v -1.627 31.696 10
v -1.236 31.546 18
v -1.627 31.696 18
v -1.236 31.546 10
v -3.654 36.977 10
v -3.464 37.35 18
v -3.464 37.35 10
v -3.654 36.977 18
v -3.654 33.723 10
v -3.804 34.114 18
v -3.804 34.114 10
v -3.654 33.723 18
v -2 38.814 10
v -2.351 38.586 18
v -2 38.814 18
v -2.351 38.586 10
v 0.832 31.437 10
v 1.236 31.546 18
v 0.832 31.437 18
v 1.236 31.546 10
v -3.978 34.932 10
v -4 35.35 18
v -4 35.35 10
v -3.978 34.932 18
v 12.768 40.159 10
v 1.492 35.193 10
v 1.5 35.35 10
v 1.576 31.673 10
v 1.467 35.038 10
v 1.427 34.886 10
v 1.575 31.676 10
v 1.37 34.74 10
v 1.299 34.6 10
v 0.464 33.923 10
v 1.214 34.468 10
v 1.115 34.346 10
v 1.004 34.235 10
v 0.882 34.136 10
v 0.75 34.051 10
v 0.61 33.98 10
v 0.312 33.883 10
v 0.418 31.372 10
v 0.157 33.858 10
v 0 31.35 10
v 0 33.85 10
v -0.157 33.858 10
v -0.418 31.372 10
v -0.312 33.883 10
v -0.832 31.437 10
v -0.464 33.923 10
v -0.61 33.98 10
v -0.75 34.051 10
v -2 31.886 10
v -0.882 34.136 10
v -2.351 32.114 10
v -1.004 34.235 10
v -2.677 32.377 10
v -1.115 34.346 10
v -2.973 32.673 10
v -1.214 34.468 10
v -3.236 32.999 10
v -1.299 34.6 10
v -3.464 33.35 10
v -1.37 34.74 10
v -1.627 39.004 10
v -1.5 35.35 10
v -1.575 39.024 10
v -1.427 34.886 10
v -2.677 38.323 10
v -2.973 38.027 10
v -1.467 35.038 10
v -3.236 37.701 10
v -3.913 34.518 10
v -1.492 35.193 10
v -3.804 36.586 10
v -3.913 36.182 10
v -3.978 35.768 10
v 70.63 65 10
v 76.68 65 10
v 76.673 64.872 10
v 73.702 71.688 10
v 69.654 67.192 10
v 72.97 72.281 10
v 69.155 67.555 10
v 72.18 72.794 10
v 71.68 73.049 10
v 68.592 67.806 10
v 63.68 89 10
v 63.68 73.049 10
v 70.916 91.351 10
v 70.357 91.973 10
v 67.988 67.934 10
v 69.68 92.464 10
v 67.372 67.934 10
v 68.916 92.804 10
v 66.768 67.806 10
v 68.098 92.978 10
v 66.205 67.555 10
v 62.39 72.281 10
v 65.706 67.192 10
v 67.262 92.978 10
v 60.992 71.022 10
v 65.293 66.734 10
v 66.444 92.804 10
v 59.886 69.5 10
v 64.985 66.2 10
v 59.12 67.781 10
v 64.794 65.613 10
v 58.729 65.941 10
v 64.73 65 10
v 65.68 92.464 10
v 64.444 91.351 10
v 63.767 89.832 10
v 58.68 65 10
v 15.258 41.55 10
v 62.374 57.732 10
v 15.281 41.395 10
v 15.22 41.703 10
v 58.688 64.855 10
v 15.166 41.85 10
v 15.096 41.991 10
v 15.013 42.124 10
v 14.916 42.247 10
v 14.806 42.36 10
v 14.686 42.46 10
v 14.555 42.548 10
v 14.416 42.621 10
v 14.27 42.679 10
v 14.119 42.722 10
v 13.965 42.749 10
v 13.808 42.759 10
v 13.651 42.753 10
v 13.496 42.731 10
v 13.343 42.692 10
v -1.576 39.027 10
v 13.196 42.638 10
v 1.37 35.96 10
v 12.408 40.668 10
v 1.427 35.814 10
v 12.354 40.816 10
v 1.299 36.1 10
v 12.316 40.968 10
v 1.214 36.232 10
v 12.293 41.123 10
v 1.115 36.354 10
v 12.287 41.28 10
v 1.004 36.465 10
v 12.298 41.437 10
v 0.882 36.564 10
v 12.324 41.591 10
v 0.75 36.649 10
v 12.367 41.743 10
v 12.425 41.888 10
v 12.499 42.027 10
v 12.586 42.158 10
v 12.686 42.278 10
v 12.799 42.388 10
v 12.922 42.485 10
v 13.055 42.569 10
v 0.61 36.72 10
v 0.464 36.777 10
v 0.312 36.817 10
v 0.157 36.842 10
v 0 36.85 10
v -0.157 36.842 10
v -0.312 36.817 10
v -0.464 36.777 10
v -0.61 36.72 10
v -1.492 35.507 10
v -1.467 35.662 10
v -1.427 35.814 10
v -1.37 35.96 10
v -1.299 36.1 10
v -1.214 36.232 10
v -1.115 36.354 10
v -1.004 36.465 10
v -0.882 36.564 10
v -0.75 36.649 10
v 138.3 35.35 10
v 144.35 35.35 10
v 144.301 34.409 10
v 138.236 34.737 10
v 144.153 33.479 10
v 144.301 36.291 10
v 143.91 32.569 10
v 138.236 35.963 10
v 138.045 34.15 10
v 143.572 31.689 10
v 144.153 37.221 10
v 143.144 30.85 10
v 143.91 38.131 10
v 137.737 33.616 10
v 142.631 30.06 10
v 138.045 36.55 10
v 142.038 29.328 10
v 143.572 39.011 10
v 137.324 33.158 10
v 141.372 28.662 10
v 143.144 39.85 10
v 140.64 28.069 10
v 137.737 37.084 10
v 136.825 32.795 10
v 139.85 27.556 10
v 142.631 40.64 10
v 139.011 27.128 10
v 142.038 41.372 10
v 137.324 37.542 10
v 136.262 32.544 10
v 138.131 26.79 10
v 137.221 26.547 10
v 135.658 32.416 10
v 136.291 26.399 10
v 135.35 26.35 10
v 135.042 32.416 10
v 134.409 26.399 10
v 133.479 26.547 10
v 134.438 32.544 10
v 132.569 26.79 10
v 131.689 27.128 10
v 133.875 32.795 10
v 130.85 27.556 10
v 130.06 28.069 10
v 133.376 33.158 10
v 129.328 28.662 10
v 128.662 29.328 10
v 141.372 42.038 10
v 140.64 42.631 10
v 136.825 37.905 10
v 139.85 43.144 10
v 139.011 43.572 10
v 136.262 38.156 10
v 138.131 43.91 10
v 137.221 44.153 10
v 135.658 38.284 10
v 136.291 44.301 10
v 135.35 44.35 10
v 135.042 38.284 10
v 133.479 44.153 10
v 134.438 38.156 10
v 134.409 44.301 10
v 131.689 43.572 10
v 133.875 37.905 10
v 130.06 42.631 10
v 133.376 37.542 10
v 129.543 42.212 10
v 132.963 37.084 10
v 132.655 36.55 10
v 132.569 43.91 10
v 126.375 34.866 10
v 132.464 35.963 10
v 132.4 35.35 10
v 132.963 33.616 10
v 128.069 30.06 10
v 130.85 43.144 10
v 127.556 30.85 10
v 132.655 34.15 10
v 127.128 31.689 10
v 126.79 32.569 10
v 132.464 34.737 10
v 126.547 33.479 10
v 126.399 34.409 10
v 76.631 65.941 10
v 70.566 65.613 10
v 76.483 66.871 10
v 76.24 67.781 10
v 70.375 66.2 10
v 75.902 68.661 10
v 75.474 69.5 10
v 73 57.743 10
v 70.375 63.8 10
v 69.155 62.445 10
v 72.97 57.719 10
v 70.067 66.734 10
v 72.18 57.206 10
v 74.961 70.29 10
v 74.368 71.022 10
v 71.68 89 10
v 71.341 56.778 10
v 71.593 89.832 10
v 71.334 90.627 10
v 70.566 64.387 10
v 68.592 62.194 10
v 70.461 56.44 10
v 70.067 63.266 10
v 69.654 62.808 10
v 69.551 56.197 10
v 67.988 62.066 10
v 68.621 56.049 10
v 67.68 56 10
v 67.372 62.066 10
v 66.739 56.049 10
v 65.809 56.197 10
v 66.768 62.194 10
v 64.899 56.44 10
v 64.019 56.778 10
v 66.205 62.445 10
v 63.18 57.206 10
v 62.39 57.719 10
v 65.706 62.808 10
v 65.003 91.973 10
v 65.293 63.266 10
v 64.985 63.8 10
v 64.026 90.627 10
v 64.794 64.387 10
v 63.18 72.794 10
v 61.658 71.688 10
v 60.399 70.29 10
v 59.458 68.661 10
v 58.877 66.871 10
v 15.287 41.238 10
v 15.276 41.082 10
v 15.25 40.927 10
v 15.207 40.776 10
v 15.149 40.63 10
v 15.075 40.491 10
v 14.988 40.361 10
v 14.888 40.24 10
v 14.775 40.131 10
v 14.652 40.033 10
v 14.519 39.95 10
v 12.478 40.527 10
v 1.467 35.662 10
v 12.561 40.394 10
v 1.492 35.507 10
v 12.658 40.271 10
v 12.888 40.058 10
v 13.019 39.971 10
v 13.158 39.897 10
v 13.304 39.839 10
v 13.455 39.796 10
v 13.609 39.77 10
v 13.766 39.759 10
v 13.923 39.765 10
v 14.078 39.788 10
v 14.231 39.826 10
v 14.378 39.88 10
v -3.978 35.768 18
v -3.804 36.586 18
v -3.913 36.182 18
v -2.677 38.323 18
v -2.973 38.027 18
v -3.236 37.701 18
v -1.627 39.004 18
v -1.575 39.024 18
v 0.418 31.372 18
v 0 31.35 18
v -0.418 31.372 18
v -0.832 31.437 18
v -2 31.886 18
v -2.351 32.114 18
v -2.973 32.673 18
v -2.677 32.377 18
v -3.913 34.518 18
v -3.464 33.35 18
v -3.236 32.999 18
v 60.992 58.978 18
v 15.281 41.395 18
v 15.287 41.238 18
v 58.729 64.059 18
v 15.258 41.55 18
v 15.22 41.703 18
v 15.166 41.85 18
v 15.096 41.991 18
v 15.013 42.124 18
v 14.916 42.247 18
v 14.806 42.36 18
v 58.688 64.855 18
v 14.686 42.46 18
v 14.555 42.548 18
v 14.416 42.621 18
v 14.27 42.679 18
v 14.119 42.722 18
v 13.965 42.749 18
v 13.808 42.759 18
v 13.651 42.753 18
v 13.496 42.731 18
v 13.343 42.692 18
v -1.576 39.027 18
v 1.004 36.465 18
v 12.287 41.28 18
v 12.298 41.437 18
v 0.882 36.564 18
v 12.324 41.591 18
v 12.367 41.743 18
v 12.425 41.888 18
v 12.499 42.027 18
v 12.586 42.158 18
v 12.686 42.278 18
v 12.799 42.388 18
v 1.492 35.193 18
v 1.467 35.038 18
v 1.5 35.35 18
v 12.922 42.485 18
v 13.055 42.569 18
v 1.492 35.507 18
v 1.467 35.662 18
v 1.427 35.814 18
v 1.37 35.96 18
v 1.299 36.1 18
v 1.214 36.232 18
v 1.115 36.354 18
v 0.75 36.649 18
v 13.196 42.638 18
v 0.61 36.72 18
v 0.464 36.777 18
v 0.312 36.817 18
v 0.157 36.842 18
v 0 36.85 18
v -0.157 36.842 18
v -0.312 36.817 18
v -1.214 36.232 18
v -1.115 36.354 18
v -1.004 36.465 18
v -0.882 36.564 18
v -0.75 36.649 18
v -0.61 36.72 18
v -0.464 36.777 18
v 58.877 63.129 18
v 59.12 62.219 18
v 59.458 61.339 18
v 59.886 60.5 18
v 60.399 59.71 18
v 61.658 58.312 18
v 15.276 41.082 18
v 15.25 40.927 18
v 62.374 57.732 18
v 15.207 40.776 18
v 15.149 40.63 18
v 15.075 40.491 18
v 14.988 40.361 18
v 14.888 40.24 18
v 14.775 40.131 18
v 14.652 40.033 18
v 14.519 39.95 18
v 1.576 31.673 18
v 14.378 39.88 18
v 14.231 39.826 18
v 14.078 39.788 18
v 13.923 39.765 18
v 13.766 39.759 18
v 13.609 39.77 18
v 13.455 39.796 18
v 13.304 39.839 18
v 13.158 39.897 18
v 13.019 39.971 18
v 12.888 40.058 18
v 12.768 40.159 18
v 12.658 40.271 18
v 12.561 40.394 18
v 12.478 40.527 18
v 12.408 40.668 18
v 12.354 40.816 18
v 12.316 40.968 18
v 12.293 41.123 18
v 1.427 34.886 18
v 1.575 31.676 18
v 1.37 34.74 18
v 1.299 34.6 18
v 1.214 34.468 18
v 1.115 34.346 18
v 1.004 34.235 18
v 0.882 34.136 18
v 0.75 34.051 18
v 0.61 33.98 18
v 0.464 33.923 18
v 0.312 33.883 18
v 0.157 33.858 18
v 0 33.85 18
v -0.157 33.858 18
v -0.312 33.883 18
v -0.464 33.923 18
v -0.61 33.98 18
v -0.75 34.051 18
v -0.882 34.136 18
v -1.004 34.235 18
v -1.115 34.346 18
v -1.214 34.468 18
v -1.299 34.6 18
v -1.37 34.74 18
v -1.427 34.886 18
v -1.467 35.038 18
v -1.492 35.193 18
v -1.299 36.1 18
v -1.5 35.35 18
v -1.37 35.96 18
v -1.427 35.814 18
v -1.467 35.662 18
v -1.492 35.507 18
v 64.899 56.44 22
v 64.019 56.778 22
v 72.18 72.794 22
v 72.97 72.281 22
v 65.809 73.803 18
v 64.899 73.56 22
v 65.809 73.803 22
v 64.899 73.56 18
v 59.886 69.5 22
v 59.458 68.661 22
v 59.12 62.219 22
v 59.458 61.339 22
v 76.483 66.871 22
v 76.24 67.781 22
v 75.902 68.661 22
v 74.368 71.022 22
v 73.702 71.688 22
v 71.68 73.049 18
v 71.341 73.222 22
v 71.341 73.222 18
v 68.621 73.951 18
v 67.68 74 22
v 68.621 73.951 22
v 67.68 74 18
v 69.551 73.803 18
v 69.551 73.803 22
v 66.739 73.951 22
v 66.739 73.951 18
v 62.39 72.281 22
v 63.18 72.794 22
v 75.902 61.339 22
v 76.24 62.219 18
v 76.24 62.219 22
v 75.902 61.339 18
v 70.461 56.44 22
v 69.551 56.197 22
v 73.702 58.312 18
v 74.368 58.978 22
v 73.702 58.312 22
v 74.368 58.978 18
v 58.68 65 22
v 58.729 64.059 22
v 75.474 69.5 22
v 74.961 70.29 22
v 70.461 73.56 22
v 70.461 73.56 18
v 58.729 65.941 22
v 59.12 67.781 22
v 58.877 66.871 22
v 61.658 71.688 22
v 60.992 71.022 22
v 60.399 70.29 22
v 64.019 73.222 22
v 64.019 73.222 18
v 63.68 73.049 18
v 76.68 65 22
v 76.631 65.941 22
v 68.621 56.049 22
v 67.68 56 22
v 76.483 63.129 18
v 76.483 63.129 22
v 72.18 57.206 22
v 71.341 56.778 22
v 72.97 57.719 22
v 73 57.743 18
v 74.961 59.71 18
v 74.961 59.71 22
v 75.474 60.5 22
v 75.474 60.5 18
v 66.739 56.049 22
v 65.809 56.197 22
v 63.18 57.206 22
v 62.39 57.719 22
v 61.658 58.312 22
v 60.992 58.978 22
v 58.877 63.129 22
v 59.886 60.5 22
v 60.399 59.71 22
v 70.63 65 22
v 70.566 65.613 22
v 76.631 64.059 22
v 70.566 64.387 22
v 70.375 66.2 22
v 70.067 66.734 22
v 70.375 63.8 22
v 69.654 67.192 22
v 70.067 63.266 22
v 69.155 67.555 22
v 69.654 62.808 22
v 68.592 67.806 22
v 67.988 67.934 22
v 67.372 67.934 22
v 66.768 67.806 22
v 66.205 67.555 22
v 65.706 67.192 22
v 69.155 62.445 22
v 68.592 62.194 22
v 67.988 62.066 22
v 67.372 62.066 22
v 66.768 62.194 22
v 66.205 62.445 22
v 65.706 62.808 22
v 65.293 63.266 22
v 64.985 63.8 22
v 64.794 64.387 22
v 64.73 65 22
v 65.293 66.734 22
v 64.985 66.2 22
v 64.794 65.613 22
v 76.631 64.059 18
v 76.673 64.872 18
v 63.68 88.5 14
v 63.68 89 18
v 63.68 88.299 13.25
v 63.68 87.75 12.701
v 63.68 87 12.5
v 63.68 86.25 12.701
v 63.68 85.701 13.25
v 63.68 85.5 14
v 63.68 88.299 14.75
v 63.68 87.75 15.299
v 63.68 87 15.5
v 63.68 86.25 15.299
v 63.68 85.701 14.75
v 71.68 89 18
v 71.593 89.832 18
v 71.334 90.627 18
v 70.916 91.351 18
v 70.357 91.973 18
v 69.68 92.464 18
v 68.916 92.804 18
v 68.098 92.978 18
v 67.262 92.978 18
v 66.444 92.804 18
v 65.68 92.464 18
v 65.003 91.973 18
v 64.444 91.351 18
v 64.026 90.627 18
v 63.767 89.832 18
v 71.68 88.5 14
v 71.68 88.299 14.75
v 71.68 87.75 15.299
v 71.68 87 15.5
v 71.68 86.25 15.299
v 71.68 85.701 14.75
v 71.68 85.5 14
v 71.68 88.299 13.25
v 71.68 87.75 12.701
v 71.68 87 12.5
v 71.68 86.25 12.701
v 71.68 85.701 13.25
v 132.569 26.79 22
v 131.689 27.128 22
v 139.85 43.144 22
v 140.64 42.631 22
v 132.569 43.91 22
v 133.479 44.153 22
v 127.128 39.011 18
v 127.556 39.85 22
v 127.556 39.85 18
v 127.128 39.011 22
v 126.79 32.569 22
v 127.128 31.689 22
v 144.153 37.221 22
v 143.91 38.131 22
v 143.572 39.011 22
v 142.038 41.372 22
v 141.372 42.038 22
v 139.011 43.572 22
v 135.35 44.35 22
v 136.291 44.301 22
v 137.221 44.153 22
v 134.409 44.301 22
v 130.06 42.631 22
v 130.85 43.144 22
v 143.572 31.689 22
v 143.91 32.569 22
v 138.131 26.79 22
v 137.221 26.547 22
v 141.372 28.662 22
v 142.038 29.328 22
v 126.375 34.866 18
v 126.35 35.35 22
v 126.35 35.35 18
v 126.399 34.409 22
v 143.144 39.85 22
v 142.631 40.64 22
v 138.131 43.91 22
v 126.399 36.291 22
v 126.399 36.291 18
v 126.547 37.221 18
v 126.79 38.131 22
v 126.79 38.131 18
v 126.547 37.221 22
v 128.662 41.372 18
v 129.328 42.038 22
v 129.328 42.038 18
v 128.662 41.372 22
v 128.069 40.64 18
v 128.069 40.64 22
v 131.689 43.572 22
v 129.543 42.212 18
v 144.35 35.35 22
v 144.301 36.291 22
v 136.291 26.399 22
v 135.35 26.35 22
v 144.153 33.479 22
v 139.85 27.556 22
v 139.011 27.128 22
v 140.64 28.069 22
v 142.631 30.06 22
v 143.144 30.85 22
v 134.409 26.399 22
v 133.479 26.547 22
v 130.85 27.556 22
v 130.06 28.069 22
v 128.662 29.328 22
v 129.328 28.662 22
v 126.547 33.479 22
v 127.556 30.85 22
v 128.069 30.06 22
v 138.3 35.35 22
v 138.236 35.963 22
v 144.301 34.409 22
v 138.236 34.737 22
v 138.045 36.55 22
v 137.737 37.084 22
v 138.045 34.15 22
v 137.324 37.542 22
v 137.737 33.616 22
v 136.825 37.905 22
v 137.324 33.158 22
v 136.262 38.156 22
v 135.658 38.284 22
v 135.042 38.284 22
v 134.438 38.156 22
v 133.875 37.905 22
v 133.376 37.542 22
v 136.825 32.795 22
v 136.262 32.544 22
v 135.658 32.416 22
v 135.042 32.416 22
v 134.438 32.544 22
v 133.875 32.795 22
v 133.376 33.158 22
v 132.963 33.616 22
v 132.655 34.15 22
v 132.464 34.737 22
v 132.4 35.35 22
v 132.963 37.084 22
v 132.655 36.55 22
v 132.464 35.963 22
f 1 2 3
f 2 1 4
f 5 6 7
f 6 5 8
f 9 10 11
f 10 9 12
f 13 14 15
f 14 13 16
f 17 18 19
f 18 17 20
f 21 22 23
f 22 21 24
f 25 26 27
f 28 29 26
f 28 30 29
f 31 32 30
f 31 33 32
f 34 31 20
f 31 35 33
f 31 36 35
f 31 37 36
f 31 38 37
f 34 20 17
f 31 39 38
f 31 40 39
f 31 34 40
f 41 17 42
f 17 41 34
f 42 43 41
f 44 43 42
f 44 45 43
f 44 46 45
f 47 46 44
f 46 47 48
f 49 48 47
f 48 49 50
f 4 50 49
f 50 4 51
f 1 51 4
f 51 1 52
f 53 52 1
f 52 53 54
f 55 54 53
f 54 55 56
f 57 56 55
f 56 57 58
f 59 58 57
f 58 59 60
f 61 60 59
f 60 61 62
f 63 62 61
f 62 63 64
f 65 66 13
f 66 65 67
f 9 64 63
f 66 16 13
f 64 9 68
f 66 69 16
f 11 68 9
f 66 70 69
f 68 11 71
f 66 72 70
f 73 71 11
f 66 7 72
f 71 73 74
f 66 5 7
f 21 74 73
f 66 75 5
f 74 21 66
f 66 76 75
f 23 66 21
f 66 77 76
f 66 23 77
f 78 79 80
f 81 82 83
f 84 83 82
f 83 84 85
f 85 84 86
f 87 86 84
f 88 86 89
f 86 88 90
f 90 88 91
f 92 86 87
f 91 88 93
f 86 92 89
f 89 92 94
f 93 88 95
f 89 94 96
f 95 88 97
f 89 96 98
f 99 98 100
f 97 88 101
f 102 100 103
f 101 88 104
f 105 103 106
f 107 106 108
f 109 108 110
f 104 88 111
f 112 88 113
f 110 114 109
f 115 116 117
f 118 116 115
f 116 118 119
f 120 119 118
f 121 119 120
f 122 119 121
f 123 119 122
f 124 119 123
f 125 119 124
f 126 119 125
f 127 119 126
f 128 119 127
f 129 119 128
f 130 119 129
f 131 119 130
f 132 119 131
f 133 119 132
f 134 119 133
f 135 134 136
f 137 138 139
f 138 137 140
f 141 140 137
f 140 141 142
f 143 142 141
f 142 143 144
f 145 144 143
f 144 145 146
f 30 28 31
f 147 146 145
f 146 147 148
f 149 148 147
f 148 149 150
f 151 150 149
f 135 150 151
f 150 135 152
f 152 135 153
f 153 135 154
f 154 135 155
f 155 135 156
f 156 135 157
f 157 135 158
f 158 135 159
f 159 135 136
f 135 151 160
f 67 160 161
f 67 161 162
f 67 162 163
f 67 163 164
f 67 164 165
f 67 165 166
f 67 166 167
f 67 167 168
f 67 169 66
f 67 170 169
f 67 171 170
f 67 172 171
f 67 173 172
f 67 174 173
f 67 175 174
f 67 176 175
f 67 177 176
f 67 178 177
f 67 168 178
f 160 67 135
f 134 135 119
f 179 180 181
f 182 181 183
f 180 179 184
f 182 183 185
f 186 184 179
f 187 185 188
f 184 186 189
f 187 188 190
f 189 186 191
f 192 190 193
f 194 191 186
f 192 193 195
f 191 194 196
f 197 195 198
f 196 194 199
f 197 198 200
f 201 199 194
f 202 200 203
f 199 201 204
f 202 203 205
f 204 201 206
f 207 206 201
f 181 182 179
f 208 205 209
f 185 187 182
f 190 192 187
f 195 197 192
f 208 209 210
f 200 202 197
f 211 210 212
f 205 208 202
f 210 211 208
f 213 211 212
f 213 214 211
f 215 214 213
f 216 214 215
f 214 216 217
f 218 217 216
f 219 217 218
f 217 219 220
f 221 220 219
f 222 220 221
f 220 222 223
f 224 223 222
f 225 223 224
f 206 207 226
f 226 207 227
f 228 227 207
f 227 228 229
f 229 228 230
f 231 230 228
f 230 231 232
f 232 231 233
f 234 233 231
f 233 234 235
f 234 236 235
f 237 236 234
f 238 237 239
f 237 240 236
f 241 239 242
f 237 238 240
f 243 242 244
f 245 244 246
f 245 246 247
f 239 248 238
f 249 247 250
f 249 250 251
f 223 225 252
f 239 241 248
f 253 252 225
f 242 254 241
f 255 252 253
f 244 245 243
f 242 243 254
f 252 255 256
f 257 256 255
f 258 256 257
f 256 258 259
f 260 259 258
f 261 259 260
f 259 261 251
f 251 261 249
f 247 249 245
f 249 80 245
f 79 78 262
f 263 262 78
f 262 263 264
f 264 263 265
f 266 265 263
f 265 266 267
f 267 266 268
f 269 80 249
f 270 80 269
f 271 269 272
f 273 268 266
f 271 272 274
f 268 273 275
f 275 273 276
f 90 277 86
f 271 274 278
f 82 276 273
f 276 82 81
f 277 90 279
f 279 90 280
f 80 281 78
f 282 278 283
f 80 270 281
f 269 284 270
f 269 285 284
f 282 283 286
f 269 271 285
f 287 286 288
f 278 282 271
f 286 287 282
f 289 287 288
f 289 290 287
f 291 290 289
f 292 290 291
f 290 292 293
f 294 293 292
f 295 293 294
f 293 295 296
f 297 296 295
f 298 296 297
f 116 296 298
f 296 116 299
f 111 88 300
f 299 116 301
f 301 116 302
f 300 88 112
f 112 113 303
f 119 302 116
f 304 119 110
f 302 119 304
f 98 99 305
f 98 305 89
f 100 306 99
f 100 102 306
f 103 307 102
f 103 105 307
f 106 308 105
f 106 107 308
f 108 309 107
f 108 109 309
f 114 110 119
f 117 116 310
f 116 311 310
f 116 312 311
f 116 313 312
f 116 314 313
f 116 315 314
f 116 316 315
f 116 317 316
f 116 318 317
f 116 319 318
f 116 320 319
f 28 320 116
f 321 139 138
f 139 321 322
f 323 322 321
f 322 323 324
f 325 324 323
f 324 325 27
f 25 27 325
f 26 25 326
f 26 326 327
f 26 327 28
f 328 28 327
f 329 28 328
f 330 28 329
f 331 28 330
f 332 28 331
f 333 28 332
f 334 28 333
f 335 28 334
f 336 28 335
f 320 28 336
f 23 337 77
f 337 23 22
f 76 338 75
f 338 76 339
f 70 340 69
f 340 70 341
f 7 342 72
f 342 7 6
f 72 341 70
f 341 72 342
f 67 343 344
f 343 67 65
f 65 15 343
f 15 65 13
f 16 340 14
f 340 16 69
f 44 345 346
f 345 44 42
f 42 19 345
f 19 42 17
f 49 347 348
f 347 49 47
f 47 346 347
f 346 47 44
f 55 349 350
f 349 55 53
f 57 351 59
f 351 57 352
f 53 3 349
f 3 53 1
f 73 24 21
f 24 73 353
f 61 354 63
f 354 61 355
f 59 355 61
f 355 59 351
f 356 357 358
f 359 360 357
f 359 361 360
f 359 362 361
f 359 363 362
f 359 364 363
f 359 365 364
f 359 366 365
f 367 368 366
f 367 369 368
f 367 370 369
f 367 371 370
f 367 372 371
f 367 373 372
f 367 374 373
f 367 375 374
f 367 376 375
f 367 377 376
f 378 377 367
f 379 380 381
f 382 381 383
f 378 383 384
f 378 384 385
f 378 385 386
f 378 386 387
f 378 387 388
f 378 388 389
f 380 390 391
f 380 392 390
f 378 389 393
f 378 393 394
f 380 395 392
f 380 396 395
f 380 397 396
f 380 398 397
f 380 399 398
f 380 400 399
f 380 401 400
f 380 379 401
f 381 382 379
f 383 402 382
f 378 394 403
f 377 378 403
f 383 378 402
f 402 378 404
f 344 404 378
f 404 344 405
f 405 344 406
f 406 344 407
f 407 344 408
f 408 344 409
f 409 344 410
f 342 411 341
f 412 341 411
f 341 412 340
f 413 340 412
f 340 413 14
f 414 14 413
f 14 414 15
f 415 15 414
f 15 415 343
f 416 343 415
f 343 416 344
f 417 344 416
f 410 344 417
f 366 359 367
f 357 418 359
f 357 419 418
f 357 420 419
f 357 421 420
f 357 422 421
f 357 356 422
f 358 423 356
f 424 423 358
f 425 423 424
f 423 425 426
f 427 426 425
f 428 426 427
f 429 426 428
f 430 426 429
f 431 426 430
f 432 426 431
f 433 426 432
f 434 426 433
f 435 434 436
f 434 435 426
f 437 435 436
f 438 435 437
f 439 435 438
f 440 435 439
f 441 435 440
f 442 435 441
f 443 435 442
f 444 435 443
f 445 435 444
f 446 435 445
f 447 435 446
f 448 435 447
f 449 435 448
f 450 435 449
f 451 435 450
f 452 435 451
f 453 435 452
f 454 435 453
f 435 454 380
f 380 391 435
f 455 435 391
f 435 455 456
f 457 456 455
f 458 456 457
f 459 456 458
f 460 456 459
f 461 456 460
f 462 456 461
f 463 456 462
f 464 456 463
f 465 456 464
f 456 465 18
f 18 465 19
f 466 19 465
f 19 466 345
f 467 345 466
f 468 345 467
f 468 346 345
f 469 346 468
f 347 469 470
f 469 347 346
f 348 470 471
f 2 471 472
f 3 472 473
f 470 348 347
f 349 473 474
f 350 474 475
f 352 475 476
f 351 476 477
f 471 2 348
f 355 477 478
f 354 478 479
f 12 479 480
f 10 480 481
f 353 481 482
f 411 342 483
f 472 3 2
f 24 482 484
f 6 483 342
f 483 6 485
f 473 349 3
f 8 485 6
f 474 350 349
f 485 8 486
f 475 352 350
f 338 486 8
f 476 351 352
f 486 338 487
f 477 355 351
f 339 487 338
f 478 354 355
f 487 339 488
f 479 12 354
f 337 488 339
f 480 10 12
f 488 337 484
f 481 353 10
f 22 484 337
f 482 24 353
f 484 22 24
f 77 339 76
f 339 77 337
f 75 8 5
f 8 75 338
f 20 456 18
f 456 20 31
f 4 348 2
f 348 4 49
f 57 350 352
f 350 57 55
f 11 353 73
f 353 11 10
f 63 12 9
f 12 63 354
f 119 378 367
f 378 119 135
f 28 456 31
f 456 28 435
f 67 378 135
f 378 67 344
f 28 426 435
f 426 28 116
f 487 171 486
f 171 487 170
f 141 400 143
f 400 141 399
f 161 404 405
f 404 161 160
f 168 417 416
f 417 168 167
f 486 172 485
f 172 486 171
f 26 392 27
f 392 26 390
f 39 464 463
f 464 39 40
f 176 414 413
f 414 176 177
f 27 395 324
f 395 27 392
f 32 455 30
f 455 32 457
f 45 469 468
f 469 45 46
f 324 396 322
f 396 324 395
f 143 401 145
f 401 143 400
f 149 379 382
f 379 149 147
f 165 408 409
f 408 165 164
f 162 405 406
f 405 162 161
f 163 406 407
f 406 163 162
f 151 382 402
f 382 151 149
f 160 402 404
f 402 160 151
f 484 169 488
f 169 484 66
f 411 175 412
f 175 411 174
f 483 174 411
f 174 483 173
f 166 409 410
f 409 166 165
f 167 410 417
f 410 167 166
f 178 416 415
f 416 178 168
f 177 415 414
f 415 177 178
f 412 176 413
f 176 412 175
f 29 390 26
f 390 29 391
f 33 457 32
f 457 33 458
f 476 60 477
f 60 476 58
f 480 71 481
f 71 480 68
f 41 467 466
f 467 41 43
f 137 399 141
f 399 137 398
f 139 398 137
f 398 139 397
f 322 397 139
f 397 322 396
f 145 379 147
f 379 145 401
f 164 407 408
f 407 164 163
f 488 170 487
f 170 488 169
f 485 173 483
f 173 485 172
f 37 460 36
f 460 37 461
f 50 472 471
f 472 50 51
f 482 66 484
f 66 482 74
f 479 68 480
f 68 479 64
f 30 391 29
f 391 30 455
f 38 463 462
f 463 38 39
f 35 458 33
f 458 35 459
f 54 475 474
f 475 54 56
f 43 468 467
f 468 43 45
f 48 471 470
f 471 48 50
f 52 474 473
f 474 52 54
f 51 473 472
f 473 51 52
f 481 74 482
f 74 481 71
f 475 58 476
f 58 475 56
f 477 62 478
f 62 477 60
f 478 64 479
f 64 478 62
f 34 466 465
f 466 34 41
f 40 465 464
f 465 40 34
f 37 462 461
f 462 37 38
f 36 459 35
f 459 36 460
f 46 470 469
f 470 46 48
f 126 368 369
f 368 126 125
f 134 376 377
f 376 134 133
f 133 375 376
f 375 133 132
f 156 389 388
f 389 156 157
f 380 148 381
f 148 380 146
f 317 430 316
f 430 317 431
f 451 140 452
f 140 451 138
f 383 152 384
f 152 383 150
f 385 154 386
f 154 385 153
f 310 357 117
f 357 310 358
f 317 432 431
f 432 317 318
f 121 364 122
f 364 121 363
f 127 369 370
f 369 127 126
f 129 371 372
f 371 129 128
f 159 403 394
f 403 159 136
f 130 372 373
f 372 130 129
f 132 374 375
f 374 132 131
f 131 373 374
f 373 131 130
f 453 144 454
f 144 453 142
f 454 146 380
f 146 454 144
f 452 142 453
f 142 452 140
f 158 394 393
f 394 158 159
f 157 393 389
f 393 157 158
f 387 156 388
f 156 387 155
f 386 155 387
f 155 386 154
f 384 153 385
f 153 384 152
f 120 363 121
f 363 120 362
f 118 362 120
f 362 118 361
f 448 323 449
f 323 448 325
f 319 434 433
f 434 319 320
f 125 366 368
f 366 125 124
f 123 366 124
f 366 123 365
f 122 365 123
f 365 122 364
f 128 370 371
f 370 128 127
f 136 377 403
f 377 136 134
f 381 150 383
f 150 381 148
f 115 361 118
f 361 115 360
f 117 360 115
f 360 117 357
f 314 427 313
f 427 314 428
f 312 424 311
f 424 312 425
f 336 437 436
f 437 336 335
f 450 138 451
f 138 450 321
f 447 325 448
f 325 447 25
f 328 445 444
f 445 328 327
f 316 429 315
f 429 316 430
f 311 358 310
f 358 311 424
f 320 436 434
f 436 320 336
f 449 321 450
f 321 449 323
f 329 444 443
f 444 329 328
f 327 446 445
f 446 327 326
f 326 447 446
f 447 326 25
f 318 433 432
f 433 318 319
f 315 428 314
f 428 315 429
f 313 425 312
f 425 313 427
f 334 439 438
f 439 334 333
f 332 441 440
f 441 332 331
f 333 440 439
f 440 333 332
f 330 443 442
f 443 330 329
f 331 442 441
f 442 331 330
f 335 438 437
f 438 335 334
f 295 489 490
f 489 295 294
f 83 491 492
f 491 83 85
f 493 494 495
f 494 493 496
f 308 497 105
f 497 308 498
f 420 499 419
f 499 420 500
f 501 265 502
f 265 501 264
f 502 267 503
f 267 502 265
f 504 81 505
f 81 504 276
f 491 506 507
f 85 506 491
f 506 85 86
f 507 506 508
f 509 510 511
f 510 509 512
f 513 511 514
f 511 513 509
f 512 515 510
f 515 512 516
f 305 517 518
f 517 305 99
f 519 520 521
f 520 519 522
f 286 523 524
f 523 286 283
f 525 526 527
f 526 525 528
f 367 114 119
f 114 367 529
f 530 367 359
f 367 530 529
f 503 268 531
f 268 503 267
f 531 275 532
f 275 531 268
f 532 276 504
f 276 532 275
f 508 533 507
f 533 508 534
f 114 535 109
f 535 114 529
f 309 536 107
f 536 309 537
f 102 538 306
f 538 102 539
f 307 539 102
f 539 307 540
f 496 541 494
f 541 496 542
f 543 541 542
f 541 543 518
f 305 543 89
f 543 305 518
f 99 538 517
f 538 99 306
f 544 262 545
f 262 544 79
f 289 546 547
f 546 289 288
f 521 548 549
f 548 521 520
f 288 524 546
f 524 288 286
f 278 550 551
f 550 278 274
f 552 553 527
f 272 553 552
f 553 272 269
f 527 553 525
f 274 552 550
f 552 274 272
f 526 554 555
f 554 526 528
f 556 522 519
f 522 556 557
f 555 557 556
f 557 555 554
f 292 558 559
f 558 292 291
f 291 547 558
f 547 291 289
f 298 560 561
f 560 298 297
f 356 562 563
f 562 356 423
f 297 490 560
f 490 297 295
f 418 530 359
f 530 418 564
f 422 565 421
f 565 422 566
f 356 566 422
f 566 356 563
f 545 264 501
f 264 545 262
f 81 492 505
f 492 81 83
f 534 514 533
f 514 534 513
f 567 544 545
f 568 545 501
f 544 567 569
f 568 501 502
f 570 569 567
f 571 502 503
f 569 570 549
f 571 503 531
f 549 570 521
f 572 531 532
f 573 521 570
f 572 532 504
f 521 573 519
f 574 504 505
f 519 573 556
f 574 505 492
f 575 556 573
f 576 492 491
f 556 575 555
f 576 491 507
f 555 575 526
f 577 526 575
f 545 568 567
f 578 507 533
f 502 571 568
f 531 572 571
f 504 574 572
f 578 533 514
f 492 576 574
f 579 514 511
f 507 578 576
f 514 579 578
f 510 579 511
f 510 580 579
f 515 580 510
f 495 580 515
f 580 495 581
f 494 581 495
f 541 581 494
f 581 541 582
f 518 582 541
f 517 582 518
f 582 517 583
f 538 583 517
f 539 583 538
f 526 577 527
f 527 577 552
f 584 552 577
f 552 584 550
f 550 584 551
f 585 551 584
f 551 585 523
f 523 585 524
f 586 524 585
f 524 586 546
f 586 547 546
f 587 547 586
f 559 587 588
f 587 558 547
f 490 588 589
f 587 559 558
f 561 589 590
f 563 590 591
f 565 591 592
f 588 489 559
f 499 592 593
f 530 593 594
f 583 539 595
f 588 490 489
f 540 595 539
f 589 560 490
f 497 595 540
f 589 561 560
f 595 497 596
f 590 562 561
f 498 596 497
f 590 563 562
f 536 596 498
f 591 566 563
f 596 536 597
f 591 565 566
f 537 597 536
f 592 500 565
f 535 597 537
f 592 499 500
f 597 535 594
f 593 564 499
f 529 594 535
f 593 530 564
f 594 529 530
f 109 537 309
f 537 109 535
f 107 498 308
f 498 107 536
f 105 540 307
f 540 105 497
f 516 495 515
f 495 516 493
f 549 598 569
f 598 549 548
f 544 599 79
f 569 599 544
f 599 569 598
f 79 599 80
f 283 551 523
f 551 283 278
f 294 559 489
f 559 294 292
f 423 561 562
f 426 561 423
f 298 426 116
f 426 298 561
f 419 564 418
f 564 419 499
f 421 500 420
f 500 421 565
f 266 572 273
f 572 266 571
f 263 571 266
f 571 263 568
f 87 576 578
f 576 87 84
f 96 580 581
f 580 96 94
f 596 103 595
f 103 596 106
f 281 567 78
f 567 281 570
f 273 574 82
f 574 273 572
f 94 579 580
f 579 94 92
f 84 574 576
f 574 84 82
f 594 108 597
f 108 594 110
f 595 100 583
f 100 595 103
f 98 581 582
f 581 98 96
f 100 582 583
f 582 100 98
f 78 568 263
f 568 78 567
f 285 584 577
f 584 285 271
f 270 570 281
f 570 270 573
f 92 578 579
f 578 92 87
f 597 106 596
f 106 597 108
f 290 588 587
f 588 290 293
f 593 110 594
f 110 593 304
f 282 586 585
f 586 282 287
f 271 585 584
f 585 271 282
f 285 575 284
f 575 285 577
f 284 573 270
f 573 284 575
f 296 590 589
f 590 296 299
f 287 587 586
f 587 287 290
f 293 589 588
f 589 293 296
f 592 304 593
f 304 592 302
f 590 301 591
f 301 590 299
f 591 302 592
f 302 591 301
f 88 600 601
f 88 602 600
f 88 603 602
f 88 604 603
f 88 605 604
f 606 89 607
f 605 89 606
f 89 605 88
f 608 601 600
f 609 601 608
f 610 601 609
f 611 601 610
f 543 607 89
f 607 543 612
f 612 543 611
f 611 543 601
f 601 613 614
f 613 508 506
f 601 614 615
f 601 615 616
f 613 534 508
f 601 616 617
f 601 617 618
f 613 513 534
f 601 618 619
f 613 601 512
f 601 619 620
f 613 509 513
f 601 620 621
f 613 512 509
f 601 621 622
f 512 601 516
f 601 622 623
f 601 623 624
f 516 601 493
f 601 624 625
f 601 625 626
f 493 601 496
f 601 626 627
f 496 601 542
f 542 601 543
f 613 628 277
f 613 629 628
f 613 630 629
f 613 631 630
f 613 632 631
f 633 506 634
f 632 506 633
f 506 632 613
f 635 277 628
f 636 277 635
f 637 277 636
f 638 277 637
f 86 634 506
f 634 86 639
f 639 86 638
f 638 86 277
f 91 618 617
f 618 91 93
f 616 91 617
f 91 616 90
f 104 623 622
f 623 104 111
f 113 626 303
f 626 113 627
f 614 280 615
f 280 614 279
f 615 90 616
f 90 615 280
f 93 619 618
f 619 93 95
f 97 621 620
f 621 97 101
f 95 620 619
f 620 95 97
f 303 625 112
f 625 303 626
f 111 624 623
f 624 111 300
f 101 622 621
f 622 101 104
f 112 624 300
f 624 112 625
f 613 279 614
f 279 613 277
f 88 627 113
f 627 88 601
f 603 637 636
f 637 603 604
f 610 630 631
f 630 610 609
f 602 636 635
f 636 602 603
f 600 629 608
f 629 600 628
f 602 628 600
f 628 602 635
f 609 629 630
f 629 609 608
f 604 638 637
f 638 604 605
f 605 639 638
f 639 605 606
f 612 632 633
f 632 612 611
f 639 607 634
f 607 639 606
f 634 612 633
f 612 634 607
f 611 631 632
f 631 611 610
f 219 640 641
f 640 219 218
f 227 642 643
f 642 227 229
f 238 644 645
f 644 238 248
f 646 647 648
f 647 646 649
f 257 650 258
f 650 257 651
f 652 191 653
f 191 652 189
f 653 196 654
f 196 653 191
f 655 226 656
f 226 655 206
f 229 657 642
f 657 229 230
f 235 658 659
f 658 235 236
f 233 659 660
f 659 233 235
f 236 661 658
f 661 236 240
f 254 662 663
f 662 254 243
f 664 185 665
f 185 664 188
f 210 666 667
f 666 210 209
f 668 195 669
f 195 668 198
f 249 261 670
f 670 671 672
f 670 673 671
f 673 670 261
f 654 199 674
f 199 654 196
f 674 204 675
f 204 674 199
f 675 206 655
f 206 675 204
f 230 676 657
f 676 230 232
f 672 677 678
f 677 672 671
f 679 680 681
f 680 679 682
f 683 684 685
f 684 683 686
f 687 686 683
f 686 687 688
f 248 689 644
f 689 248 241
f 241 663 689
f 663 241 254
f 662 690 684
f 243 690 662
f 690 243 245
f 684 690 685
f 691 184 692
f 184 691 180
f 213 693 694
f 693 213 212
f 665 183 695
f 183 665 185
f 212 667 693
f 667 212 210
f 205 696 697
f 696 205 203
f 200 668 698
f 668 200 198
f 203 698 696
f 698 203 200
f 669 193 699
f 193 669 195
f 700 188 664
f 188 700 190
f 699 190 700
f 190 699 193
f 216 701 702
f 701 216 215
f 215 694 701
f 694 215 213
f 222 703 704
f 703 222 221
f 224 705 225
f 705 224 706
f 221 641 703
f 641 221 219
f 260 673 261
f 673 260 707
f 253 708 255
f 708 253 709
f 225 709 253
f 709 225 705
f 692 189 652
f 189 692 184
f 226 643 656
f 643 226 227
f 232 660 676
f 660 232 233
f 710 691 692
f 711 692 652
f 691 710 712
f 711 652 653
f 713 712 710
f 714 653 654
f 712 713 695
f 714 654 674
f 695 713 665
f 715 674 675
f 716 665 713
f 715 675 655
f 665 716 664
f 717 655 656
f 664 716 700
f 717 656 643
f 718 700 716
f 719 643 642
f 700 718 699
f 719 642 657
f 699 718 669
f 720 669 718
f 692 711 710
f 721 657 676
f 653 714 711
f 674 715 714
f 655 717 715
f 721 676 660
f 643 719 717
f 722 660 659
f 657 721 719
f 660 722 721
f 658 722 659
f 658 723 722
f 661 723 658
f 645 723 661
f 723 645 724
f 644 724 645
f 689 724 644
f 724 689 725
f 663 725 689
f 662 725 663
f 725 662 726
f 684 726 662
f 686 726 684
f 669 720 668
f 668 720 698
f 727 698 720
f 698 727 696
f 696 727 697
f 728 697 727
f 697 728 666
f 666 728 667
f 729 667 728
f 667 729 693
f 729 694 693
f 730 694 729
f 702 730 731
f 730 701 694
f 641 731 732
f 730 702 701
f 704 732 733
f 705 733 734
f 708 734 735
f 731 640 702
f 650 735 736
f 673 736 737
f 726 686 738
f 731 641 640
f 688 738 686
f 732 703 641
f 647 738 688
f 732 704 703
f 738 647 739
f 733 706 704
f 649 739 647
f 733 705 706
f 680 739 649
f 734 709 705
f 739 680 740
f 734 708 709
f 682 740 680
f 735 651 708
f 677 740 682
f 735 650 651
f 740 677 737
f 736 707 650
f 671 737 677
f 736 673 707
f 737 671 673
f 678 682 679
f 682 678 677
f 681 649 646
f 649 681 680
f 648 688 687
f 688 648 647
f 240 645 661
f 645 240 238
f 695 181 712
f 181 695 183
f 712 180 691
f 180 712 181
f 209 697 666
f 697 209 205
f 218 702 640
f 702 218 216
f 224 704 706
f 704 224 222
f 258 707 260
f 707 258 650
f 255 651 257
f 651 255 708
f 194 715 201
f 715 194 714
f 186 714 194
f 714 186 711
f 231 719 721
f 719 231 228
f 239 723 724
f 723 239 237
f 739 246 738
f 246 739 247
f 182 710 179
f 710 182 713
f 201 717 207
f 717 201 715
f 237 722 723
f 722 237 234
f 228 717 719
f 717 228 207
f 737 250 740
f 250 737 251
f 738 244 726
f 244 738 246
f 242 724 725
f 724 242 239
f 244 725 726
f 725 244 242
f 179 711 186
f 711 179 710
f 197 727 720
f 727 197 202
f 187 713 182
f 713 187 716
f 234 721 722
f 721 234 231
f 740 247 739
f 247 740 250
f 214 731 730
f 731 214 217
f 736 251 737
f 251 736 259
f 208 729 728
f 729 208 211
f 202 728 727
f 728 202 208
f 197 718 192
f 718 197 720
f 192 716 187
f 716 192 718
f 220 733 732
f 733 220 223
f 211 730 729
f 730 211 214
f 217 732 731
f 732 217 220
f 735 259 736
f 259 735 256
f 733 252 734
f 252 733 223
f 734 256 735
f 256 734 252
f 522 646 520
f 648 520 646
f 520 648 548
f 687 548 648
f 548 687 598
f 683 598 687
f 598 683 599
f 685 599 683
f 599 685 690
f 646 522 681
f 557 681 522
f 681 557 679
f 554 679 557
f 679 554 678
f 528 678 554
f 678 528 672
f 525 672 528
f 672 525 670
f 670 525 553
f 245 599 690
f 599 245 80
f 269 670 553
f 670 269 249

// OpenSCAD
difference(){
union(){
translate([0,35.35,10])cylinder(d=8,h=8,$fn=60);
translate([0,35.35,10])rotate([0,0,23.2])
translate([0,-4,0])cube([70,8,8]);
}
translate([0,35.35,9])cylinder(d=3,h=10,$fn=60);
translate([0,35.35,9])
rotate([0,0,23.2])translate([15,0,0])
cylinder(d=3,h=10,$fn=60);
}

translate([67.68,65,10])
difference(){
cylinder(d=18,h=12,$fn=60);
translate([0,0,-1])cylinder(d=5.9,h=20,$fn=30);
}

translate([63.68,69,10])
difference(){
union(){
cube([8,20,8]);
translate([4,20,0])cylinder(d=8,h=8,$fn=30);
}
translate([-2,18,4])
rotate([0,90,0])
cylinder(d=3,h=12,$fn=12);
}

translate([135.4,35.35,10])rotate([0,0,156.8])
translate([8,-4,0])cube([60,8,8]);
translate([135.35,35.35,10])
difference(){
cylinder(d=18,h=12,$fn=60);
translate([0,0,-1])cylinder(d=5.9,h=20,$fn=30);
}
